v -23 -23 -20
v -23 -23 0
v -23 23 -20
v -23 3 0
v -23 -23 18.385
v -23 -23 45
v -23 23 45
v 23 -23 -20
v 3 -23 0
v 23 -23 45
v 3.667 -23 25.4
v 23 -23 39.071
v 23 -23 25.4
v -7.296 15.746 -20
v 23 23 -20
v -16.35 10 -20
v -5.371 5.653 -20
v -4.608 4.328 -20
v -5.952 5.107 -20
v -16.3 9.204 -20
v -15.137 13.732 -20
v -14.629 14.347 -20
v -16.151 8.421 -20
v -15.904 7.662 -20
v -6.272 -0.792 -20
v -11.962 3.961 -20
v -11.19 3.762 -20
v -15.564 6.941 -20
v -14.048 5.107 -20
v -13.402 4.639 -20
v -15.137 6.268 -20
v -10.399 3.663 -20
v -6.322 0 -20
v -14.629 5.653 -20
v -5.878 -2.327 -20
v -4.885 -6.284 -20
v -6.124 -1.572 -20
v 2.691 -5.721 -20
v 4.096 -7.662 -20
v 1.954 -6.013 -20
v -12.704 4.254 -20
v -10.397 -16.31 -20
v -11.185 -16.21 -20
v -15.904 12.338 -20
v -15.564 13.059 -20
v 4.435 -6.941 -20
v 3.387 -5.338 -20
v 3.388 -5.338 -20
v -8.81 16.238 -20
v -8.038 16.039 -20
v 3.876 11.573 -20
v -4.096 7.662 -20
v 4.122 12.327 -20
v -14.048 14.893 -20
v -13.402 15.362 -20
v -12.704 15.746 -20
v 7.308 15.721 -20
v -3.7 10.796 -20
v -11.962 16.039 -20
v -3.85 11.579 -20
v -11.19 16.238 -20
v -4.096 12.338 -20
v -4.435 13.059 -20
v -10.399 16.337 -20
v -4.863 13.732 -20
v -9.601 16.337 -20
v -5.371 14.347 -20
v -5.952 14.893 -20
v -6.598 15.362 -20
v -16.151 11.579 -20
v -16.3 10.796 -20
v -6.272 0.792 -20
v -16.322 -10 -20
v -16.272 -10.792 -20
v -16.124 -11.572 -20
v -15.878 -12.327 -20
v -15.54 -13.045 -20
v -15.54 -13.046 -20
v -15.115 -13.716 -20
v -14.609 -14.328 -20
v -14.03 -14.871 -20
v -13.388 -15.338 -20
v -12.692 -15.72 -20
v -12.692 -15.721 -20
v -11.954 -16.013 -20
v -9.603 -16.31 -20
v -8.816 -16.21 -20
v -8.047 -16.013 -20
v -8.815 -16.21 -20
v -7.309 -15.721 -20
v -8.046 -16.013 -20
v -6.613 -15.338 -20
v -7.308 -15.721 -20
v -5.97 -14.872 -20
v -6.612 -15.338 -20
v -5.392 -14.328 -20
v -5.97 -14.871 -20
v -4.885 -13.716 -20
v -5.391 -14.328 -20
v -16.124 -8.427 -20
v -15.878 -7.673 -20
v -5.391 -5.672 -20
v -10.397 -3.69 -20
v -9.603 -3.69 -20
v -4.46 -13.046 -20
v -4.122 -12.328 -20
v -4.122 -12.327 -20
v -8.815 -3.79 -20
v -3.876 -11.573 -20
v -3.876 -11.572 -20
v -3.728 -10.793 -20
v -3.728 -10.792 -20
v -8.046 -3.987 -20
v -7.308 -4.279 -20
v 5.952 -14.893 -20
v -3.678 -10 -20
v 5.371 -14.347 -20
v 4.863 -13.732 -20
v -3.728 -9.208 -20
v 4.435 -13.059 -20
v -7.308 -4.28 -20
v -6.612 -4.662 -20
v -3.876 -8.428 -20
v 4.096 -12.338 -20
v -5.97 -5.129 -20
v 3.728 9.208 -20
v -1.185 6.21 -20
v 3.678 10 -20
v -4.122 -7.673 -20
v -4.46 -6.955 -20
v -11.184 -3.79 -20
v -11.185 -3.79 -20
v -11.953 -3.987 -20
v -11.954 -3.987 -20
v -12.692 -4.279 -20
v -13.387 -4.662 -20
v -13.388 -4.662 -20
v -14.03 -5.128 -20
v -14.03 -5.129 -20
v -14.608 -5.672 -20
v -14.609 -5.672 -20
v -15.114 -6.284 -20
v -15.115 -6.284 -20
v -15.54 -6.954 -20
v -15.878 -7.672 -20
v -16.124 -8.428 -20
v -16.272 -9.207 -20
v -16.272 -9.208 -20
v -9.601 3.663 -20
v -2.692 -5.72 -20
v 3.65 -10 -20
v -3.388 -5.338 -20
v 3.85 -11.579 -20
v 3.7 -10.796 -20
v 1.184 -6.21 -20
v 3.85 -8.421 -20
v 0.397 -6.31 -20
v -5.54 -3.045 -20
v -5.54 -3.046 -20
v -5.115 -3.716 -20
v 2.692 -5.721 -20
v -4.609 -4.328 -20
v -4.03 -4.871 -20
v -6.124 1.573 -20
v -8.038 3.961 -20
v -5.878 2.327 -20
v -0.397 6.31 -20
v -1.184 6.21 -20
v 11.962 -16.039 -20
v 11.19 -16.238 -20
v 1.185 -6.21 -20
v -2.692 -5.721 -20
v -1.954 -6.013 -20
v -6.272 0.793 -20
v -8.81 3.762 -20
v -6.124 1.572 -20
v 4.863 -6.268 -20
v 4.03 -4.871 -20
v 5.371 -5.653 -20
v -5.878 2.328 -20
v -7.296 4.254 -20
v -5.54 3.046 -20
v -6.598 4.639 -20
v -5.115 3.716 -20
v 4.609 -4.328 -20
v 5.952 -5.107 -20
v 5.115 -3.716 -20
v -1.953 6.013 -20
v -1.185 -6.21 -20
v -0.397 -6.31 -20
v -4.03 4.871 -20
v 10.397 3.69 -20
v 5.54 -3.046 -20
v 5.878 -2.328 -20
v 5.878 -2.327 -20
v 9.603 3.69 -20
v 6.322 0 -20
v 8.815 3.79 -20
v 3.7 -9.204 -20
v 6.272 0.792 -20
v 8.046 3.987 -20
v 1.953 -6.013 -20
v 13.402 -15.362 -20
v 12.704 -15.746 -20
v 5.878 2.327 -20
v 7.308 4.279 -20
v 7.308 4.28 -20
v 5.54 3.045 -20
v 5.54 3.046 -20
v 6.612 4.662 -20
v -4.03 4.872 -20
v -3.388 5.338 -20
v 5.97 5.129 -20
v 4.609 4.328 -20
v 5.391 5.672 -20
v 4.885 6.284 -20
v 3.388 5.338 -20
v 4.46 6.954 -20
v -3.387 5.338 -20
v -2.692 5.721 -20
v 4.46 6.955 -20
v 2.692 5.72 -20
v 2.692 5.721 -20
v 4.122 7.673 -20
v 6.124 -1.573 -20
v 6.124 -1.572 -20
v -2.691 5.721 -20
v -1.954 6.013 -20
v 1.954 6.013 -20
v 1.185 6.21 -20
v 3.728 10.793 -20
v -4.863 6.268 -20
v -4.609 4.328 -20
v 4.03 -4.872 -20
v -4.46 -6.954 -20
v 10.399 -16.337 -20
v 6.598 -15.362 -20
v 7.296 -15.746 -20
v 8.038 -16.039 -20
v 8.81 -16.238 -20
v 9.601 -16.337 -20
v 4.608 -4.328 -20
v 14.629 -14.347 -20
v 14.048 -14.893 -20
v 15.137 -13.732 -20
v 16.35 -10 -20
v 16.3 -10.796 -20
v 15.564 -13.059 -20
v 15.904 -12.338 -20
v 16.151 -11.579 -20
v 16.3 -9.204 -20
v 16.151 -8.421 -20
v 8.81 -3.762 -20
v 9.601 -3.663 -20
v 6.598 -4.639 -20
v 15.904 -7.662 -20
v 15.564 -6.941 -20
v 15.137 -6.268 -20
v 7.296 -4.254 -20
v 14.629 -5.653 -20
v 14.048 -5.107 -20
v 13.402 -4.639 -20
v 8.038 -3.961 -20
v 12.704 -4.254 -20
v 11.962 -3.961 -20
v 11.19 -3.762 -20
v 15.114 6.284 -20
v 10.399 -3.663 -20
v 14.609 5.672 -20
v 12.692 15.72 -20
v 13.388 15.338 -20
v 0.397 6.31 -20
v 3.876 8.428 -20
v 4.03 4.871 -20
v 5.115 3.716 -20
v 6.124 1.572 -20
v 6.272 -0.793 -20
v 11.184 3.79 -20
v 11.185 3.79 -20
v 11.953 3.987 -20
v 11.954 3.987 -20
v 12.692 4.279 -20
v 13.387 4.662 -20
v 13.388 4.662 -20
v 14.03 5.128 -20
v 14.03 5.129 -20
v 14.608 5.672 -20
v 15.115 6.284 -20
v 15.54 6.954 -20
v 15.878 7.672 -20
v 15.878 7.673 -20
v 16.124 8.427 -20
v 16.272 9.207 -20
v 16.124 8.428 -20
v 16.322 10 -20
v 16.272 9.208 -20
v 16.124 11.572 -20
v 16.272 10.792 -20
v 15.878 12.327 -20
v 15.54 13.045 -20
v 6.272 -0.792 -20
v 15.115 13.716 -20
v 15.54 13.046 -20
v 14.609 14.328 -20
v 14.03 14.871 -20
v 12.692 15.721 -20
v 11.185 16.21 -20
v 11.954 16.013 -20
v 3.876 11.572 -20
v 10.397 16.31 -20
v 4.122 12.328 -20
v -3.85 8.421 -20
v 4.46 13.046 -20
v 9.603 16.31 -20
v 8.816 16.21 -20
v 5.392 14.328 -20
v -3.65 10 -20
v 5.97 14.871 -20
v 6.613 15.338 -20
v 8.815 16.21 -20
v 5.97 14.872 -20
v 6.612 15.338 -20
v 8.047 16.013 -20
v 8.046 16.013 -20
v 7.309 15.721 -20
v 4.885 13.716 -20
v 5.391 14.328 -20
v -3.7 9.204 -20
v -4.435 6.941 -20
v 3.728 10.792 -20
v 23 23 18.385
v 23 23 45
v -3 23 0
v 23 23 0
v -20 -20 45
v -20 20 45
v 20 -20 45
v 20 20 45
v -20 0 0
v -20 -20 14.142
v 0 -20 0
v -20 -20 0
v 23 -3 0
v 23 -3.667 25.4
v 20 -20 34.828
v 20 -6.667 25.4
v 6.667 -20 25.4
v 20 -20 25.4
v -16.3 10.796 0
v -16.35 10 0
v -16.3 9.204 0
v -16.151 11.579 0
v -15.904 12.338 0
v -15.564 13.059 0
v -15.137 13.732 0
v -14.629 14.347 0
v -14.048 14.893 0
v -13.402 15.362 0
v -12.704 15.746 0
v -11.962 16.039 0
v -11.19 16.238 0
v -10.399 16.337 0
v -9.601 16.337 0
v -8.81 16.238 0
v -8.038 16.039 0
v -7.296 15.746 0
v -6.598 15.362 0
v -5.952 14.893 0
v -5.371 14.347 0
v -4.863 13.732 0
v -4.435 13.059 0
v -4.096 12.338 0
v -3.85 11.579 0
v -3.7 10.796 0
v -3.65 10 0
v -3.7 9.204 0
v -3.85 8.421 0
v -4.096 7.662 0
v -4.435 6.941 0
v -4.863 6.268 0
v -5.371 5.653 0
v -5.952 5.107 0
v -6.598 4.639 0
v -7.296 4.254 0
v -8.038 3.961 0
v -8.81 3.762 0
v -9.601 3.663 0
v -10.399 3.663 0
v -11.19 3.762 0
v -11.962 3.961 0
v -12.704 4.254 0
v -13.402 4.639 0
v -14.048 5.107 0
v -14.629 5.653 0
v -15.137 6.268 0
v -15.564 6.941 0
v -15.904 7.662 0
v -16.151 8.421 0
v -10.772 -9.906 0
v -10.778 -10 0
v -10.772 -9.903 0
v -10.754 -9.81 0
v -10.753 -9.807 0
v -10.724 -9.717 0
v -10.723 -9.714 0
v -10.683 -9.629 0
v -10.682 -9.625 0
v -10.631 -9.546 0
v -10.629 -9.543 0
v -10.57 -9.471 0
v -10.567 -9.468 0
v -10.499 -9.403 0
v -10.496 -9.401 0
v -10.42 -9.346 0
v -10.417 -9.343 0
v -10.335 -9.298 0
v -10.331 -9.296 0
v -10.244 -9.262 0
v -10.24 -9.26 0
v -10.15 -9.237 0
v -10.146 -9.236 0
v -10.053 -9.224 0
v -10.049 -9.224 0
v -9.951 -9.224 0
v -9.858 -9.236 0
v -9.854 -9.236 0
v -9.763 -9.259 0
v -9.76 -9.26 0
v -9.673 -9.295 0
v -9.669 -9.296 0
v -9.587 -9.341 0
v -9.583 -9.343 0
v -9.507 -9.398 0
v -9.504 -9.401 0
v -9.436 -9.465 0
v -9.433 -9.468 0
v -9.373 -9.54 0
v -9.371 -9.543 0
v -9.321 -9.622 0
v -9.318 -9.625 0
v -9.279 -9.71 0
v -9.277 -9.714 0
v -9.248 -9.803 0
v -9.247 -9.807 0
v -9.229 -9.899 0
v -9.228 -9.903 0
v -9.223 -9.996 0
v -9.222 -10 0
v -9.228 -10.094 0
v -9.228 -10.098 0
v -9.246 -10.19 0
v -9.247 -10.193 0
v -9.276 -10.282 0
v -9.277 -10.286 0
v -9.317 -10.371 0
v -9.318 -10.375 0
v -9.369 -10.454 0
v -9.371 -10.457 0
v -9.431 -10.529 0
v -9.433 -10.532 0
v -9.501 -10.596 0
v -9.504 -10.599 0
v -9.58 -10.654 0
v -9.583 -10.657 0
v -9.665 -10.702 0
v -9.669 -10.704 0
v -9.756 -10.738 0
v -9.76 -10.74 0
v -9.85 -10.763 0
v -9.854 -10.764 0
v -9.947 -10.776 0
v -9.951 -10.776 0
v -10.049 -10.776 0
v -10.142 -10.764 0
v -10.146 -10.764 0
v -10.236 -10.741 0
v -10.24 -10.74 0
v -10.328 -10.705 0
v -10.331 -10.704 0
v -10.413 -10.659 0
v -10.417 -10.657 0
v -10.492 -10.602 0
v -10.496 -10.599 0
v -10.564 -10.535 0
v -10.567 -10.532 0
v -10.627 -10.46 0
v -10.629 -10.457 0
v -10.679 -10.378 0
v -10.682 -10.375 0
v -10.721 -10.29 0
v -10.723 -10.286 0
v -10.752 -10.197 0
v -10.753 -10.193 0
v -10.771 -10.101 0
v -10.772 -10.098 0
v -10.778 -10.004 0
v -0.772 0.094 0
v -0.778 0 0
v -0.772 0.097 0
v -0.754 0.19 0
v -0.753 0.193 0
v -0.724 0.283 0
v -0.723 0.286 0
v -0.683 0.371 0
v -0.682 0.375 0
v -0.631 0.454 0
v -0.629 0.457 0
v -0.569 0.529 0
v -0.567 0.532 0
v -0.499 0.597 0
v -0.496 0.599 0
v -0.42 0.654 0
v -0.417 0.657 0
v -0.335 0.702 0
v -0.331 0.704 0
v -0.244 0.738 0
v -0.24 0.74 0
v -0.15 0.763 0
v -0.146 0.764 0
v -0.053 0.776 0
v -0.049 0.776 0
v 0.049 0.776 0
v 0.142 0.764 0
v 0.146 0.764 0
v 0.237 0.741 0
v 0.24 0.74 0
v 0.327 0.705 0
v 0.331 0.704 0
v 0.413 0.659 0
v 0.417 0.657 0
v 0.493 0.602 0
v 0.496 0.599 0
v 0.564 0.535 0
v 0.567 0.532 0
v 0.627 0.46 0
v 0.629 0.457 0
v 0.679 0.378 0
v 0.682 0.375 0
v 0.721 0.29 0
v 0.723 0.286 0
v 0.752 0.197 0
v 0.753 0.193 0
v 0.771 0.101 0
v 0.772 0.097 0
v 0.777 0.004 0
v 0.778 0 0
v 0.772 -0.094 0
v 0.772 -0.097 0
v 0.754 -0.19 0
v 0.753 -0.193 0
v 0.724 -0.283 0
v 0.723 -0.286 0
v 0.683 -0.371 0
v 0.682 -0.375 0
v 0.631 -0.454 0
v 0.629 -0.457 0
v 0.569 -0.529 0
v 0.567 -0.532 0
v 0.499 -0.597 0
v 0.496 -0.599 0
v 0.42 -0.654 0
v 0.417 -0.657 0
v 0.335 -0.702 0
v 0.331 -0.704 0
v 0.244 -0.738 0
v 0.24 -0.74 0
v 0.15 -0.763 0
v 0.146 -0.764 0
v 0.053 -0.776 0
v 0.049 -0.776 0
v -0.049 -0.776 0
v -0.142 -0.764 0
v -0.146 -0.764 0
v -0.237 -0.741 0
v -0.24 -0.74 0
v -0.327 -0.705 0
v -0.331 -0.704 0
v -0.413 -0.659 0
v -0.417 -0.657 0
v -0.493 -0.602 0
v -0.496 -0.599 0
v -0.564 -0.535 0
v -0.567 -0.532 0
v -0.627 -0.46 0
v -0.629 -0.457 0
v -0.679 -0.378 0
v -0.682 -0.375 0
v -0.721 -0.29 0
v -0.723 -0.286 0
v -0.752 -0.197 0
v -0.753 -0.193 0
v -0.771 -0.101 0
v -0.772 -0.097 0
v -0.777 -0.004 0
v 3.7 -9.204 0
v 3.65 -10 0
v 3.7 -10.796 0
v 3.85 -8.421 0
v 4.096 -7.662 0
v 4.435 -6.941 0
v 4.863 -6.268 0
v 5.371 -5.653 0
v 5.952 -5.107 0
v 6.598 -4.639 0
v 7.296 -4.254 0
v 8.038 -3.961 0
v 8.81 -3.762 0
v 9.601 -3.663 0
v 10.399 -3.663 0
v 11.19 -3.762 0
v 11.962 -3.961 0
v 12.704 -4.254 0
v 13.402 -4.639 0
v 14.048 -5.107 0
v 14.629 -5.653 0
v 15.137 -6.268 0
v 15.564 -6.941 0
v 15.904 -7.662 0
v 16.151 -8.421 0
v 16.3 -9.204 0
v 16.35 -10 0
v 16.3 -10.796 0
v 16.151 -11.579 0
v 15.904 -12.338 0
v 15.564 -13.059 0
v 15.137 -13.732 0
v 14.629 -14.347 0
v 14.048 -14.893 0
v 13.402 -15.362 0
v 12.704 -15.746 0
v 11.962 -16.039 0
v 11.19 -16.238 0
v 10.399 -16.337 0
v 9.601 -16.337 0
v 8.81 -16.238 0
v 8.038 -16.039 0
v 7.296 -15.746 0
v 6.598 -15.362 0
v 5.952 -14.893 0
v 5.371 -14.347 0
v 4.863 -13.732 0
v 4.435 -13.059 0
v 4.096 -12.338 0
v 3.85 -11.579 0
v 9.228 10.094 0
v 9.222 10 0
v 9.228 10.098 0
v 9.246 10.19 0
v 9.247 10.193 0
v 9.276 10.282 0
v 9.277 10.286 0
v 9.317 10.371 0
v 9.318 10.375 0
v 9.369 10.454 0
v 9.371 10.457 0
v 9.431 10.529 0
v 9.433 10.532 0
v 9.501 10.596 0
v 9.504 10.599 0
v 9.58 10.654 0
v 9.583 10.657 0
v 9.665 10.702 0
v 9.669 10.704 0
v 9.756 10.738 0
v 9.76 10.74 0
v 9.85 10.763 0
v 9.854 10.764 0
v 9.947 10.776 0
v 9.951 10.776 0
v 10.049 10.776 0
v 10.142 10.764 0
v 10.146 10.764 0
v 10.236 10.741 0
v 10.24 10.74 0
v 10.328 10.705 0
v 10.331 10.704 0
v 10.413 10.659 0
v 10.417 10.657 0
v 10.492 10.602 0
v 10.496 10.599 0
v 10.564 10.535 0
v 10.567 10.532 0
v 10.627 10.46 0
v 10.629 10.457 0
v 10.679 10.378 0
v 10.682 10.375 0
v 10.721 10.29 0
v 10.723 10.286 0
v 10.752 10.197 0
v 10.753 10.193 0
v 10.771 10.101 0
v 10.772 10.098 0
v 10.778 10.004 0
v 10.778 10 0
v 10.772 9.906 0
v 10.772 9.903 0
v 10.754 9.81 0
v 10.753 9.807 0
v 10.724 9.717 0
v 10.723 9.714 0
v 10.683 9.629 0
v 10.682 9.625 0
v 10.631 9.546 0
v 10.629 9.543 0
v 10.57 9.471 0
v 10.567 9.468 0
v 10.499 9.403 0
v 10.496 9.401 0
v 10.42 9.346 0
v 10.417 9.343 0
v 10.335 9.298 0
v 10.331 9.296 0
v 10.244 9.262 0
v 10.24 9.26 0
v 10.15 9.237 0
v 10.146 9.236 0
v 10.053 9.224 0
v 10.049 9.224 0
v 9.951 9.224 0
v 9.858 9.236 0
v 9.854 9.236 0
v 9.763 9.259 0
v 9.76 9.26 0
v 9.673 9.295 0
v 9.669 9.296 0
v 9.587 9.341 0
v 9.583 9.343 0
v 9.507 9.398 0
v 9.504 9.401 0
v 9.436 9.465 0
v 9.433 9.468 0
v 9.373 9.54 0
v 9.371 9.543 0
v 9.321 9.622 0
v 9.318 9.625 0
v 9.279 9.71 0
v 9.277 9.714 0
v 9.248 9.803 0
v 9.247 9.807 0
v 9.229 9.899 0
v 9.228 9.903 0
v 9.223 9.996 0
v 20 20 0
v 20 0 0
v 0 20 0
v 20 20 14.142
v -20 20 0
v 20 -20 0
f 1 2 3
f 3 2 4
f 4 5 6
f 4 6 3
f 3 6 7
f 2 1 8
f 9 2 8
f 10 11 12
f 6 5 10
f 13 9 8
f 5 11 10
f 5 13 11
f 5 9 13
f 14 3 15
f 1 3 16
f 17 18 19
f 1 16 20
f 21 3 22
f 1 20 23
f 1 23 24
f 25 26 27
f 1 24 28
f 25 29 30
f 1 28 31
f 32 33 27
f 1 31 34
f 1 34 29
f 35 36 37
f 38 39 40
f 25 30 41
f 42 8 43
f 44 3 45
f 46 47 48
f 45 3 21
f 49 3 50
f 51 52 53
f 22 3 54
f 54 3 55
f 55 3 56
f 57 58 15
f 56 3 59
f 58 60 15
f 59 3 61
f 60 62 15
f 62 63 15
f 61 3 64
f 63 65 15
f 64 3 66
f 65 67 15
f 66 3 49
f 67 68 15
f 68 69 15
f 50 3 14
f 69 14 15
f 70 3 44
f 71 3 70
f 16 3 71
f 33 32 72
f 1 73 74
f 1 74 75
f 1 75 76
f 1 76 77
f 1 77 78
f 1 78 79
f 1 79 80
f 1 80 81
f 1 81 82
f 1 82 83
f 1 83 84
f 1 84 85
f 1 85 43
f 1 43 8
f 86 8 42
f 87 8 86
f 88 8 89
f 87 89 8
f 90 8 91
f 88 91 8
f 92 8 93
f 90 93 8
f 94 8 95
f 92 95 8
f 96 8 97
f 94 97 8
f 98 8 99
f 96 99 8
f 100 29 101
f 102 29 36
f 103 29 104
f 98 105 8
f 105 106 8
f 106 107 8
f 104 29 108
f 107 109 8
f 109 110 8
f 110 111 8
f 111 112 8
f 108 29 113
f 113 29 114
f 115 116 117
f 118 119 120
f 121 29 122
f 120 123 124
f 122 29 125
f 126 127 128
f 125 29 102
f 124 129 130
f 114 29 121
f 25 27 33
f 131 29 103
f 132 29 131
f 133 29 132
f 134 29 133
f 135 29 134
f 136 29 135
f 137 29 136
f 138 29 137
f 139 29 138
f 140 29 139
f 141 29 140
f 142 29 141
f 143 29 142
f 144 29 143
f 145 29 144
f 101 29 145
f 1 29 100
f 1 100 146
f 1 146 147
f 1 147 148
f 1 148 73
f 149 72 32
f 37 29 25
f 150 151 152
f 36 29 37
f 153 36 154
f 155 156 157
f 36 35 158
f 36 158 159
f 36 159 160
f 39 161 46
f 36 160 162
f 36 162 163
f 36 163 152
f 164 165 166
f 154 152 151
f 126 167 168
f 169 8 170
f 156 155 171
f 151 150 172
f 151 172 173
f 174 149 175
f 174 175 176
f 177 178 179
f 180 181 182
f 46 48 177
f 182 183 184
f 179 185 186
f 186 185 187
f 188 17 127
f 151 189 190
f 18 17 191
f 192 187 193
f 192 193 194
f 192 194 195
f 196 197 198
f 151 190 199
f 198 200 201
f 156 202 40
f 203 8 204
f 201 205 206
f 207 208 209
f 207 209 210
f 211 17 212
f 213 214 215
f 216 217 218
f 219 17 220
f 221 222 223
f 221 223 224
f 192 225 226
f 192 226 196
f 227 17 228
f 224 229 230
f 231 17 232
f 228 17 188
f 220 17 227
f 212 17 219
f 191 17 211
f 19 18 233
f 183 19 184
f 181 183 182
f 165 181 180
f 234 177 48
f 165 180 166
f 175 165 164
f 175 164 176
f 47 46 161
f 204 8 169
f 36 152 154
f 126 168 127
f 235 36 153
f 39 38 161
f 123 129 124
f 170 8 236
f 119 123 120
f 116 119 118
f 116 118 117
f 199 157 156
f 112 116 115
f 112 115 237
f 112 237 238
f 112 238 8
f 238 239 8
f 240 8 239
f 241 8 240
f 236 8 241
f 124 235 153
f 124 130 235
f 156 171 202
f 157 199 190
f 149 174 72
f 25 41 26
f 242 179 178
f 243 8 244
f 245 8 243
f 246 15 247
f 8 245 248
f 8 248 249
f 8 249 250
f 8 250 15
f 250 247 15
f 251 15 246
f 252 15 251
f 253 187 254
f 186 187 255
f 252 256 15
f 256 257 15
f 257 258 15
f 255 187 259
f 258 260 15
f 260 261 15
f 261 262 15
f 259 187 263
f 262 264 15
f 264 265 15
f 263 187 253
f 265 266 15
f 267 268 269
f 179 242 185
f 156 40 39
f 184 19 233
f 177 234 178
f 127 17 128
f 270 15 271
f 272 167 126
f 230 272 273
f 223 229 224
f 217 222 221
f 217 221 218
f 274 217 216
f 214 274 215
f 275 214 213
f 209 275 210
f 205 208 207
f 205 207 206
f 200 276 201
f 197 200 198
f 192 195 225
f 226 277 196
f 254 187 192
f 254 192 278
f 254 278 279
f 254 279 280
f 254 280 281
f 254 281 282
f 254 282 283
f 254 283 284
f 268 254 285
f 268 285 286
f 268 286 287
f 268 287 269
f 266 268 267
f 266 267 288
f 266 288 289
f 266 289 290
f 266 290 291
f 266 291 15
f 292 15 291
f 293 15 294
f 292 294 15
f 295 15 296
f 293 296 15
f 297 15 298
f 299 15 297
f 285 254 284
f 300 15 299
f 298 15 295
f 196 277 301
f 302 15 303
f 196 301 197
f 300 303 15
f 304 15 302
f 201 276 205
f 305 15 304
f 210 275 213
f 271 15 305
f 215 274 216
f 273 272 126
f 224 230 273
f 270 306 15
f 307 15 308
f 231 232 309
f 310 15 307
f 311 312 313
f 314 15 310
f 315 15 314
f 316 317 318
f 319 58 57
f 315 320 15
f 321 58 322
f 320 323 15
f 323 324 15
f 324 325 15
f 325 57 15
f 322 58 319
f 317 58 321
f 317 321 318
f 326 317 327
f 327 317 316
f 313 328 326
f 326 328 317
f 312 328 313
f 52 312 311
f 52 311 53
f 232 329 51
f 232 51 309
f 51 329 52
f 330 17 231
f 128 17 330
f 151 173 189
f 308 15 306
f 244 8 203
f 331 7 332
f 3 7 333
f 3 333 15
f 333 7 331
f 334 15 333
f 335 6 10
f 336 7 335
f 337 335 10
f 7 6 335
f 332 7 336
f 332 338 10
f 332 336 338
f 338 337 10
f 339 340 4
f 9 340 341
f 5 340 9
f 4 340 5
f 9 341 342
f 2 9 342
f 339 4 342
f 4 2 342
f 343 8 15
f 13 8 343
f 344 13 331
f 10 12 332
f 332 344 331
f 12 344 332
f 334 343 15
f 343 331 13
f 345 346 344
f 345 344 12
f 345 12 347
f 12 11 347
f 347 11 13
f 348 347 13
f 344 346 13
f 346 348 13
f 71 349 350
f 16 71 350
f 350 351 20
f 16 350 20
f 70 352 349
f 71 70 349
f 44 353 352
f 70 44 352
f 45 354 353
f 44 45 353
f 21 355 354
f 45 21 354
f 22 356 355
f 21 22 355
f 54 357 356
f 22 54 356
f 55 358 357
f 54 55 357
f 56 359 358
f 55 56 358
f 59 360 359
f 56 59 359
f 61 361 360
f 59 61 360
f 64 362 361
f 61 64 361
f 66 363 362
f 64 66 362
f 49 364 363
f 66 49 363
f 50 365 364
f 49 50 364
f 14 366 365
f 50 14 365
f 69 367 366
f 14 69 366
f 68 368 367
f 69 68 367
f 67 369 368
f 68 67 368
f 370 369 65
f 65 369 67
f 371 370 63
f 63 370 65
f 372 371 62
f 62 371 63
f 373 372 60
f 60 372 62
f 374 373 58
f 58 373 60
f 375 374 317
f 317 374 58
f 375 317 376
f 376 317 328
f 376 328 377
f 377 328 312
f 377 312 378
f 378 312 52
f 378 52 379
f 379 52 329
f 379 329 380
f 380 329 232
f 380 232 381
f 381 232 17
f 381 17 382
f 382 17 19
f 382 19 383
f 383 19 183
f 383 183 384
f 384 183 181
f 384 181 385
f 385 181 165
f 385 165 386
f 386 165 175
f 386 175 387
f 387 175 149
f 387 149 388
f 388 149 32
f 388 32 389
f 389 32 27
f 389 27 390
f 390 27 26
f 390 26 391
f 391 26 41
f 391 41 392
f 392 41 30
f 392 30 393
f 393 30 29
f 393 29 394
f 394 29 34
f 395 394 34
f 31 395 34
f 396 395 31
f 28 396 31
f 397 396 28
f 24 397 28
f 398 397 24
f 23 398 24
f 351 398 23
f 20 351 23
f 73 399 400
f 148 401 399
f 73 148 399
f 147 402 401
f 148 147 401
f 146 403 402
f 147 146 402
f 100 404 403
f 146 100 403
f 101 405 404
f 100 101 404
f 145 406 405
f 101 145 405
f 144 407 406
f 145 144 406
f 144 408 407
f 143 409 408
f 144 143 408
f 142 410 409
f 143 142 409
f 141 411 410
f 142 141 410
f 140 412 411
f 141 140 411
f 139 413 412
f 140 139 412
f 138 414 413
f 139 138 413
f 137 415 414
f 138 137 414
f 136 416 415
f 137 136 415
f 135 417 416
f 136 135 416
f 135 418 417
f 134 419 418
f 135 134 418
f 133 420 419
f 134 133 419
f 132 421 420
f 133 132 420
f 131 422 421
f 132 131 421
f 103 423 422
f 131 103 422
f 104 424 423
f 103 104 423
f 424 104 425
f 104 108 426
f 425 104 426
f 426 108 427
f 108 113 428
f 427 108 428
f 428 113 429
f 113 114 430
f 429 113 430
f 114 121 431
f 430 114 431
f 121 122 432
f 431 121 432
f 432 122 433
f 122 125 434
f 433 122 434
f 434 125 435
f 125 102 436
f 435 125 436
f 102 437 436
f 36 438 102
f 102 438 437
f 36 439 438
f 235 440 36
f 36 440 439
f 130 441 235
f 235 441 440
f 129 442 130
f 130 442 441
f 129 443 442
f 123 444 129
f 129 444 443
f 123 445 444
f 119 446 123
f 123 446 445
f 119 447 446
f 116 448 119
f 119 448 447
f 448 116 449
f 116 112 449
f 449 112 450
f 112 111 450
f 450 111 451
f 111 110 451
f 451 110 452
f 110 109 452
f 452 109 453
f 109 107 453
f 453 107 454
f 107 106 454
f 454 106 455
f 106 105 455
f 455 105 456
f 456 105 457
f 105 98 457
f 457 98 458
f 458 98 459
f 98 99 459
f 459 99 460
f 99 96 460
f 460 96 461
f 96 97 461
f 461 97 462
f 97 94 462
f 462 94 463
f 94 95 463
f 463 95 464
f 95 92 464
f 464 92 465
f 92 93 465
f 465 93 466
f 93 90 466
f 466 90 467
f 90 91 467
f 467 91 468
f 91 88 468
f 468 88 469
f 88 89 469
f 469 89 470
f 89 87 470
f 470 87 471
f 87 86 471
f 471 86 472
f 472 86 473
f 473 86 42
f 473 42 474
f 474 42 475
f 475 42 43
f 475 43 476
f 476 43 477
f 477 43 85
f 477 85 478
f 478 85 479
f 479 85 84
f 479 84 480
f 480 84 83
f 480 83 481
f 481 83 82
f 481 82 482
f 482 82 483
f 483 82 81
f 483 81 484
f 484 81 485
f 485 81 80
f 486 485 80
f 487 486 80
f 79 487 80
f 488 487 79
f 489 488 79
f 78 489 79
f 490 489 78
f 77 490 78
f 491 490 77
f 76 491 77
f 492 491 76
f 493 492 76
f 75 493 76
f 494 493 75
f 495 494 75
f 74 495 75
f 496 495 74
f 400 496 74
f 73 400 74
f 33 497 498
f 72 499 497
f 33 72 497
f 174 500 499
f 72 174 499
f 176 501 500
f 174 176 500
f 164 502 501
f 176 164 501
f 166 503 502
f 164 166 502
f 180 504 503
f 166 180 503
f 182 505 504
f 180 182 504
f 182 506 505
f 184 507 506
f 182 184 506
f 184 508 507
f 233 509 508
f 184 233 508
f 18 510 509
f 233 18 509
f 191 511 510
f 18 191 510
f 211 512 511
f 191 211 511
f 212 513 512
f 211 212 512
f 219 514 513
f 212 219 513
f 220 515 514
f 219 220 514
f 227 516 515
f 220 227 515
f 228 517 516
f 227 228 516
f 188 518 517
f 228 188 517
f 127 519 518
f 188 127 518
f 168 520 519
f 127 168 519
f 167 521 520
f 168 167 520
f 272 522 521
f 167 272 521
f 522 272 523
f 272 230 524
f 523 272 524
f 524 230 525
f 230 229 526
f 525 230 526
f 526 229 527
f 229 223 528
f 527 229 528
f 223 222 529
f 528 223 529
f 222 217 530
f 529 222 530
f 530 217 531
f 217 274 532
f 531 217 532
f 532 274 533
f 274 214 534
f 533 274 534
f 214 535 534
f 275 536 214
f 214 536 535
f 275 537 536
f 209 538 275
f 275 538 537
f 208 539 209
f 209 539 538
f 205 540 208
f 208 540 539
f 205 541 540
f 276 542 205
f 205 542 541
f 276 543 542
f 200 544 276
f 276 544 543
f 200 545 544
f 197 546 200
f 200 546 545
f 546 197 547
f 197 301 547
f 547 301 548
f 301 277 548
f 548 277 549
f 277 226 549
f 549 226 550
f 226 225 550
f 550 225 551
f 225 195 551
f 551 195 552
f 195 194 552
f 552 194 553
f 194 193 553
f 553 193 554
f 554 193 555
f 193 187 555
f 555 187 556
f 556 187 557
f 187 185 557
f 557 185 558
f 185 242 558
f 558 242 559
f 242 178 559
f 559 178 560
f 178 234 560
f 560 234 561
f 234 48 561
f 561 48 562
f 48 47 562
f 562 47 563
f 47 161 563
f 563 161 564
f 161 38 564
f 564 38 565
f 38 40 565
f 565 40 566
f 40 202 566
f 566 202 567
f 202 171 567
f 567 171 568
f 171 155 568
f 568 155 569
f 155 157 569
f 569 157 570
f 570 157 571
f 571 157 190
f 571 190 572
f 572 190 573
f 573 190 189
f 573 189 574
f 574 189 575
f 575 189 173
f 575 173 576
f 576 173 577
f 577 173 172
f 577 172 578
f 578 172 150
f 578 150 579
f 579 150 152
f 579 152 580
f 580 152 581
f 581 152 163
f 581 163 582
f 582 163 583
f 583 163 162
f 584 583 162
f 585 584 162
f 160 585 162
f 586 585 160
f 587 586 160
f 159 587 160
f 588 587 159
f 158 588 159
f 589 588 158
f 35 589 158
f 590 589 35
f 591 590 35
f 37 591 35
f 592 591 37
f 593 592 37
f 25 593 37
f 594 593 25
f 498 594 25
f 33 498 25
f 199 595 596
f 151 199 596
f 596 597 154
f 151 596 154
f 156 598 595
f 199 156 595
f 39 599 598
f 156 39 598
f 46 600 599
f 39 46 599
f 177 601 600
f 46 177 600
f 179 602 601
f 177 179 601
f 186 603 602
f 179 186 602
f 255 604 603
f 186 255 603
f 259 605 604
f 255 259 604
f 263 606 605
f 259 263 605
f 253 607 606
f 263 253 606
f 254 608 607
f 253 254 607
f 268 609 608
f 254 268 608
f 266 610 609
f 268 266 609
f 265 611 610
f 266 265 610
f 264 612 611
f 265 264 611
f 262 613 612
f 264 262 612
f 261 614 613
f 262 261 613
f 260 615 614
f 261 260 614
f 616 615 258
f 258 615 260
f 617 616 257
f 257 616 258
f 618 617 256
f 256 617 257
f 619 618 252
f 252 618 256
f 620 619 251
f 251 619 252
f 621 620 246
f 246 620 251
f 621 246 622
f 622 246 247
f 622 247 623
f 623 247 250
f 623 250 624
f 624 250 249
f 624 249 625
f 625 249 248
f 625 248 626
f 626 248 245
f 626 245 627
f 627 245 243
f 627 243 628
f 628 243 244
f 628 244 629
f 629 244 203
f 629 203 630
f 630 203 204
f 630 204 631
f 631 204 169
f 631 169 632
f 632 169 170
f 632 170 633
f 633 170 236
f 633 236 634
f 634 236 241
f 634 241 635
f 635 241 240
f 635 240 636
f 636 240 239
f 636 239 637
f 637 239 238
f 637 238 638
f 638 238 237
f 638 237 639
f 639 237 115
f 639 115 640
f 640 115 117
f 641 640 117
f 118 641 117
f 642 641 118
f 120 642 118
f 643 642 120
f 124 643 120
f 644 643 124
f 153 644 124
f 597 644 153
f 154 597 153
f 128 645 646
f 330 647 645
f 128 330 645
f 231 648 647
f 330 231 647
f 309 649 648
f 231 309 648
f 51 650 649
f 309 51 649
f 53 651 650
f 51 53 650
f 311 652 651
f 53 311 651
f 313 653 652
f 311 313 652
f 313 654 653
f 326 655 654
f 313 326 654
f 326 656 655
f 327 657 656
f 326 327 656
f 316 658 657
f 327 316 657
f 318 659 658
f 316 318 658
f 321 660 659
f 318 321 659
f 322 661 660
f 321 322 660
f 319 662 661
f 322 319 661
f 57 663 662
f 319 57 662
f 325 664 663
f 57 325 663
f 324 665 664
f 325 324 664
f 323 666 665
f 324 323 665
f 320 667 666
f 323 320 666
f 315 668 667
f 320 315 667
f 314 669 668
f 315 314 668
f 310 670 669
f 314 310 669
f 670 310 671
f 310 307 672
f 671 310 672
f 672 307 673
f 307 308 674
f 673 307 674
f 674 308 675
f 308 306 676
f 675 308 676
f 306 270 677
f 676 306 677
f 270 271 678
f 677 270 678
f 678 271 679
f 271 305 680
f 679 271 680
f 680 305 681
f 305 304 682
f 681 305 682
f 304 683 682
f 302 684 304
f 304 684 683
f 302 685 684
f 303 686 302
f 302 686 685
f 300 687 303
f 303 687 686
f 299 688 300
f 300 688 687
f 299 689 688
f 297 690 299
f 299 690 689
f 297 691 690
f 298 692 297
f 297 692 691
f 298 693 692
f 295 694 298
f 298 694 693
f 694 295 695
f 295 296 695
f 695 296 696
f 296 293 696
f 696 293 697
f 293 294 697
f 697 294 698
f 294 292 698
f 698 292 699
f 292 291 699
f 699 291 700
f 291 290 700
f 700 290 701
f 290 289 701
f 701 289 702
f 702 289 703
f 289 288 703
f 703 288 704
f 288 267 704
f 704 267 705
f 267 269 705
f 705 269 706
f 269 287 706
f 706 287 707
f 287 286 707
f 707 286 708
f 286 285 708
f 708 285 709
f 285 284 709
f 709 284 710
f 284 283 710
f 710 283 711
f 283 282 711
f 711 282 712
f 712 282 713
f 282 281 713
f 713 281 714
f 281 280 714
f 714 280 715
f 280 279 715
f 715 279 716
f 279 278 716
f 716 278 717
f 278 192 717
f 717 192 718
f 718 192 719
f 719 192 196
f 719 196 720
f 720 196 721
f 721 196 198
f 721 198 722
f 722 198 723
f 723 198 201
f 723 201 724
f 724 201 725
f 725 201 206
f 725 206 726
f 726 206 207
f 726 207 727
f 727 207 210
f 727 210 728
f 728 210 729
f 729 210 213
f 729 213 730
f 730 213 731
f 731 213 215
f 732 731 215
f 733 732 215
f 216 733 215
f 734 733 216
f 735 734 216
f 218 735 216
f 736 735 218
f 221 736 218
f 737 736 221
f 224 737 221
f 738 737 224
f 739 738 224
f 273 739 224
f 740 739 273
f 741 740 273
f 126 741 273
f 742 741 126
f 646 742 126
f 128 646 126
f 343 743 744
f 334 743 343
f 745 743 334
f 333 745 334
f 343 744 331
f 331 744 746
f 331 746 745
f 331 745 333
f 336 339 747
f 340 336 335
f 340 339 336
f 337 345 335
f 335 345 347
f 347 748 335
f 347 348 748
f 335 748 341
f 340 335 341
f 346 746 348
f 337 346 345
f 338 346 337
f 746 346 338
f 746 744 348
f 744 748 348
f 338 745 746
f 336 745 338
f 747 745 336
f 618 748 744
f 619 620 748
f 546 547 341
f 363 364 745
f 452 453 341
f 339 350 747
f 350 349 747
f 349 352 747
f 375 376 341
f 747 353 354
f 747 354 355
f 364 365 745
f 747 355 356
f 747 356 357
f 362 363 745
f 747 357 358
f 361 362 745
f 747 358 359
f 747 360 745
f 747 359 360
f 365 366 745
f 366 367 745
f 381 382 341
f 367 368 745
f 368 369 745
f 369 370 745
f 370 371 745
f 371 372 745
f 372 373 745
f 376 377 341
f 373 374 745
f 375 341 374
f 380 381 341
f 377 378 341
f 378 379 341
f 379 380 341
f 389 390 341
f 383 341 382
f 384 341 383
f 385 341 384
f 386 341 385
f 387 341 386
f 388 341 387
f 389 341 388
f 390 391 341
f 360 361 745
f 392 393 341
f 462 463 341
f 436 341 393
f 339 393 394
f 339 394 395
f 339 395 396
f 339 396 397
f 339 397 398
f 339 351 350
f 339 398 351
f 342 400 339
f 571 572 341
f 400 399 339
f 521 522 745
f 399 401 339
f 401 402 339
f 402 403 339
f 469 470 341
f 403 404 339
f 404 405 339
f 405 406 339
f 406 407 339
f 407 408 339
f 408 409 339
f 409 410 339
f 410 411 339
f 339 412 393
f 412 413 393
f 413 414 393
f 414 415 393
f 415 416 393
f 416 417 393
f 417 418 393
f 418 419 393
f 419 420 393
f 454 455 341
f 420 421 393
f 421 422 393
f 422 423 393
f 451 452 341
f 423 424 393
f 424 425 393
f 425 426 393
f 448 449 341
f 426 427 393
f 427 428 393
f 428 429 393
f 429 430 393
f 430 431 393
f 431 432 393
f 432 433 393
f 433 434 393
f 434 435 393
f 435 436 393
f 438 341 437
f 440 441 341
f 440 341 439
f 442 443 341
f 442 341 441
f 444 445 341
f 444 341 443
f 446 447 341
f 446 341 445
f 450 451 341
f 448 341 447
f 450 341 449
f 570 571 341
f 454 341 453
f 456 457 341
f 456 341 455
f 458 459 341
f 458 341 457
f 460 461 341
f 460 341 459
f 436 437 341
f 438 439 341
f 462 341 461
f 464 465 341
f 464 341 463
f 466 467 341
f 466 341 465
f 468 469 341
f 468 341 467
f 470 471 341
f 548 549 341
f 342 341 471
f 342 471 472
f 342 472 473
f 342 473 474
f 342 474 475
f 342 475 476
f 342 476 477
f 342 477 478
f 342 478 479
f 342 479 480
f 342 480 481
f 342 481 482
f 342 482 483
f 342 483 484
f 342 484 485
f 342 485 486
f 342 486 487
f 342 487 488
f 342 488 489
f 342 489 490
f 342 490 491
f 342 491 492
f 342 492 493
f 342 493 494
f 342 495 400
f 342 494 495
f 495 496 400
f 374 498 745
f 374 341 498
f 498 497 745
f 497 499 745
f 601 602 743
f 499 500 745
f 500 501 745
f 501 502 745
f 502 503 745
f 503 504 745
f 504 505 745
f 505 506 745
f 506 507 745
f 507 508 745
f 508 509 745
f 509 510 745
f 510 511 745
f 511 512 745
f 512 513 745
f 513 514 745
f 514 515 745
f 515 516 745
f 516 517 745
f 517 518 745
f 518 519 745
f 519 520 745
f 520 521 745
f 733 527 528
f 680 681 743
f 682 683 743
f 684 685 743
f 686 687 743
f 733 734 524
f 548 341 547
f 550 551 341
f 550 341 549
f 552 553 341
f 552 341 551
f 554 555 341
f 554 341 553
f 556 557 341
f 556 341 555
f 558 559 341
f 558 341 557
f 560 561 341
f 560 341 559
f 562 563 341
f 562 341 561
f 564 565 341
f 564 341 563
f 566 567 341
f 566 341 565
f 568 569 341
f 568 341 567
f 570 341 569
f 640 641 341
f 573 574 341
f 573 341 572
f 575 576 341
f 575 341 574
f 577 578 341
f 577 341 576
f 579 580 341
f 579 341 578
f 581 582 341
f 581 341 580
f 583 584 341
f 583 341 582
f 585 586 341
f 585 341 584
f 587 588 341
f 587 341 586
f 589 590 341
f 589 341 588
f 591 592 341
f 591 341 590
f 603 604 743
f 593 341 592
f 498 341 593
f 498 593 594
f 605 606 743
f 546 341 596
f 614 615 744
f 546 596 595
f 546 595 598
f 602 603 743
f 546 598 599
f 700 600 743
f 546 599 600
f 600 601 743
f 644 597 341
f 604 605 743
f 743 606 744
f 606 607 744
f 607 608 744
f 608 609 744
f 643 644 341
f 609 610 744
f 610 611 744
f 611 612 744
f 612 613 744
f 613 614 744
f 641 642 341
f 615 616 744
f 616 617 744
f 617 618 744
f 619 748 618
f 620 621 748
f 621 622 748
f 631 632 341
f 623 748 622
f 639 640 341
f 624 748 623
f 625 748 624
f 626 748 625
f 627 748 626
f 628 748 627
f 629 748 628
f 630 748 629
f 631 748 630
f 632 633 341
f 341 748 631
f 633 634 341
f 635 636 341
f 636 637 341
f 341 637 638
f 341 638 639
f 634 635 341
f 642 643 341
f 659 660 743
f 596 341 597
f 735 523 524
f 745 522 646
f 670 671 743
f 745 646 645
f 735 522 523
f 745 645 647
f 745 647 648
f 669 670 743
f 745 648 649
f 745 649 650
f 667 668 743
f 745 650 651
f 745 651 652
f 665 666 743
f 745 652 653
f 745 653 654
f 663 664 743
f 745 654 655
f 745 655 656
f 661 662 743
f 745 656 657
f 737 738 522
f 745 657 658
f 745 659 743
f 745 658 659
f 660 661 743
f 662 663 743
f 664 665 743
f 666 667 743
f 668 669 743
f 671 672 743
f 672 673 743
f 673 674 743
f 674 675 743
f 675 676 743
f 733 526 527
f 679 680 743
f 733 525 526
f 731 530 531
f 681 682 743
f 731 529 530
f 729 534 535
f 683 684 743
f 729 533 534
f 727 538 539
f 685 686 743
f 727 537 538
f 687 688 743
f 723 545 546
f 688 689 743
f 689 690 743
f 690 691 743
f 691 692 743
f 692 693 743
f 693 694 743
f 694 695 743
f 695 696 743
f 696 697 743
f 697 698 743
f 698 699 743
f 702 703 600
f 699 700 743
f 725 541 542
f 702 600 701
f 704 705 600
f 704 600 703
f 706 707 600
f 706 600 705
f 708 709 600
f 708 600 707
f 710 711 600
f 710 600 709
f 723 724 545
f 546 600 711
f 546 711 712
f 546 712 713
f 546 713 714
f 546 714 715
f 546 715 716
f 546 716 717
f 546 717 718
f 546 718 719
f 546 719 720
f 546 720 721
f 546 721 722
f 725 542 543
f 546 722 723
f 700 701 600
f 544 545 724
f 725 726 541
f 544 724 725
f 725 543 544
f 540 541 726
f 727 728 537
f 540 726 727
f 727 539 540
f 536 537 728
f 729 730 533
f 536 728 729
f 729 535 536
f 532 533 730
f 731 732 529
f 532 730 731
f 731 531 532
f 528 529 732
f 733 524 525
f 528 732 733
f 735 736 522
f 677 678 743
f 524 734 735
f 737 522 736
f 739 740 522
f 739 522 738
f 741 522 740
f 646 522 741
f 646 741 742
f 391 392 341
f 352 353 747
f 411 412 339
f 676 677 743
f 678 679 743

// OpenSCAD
/**
 * wooden_train_whistle_jig.scad
 *
 * Jig based on [Steve Ramsey's wooden train whistle](http://www.woodworkingformeremortals.com/2012/12/make-wood-train-whistle.html).
 *
 * This is intended to help produce consistent drill holes and cut lines, and speed up
 * the process of making a train whistle by reducing the number of tedious measurements,
 * leaving you more time to enjoy actually working with the wood.  It includes:
 *
 *  * Guide holes for drilling.
 *  * Guide holes for marking your preferred drilling points (if you don't want to use
 *    the larger guide holes).
 *  * Measured cut-outs for marking band-saw "window" cuts
 *  * Measured cut-out for marking the cut point for the mouthpiece (which you should
 *    mark and cut off before marking any other cuts).
 *
 * This OpenSCAD library is part of the [dotscad](https://github.com/dotscad/dotscad)
 * project, an open collection of modules and Things for 3d printing.  Please check there
 * for the latest versions of this and other related files.
 *
 * @copyright  Chris Petersen, 2014
 * @license    http://creativecommons.org/licenses/LGPL/2.1/
 * @license    http://creativecommons.org/licenses/by-sa/3.0/
 *
 * @see        http://www.thingiverse.com/thing:?????
 * @source     https://github.com/dotscad/things/blob/master/wooden_train_whistle_jig/wooden_train_whistle_jig.scad
 */

//
// Customizer parameters and rendering
//

/* [Global] */

// mm diameter of the whistle tube hole.  Larger measurements are useful if you intend to strengthen the hole with metal tubing.
bore = 12.7; // [19.05:3/4", 12.7:1/2", 9.525:3/8"]

// mm thickness of the base (longer means a better guide hole).
base=20;

// mm thickness of the wall that will hold the wood in place on the jig.
wall=3;

// mm width of the wood (1.5" is 38.1mm but measurements suggest leaving some extra room)
w = 40;

/* [Hidden] */

h = 65;  // height of the entire jig

point_max = 12.7/2; // Radius of the large end of the center point guide hole.
point_min = .75;    // Radius of the small end of the center point guide hole.

mouthpiece_cut = 25.4; // 1" - thickness of the mouthpiece to cut off

module jig($fn=50) {
    o=.1;
    difference() {
        translate([-wall-w/2,-wall-w/2,-base])
        difference() {
            cube([w+wall*2,w+wall*2,h]);
            translate([wall,wall,base]) cube([w,w,h+o]);
            // Guides for marking drill points
            translate([wall + w*.25,wall + w*.25,-o]) cylinder(r1=point_max, r2=point_min, h=base+o*2);
            translate([wall + w*.75,wall + w*.75,-o]) cylinder(r1=point_max, r2=point_min, h=base+o*2);
            translate([wall + w*.5,wall + w*.5,-o]) cylinder(r1=point_max, r2=point_min, h=base+o*2);
            // Actual drill guides (need to find metal tubing for this...)
            // steve actually puts these 3/8" in rather than centered...
            translate([wall + w*.75,wall + w*.25,-o]) cylinder(r=bore/2, h=base+o*2);
            translate([wall + w*.25,wall + w*.75,-o]) cylinder(r=bore/2, h=base+o*2);
        }

        // mouthpiece depth cut
        rotate([0,0,45]) translate([0,-w*sqrt(2)/3,mouthpiece_cut]) cutout();
        // whistle hole cuts
        rotate([0,0,135]) translate([0,-w*sqrt(2)/4,0]) cutout();
        rotate([0,0,-45]) translate([0,-w*sqrt(2)/4,0]) cutout();
    }
}

module cutout() {
    // cutouts
	width = w;
	len    = width*2;
	translate([0,-width/sqrt(2),0])
		difference() {
			rotate([45,0,0]) cube([len,width,width], center=true);
			translate([0,0,-width]) cube([len * 2,width * 2, width * 2], center=true);
		}
}

jig();
